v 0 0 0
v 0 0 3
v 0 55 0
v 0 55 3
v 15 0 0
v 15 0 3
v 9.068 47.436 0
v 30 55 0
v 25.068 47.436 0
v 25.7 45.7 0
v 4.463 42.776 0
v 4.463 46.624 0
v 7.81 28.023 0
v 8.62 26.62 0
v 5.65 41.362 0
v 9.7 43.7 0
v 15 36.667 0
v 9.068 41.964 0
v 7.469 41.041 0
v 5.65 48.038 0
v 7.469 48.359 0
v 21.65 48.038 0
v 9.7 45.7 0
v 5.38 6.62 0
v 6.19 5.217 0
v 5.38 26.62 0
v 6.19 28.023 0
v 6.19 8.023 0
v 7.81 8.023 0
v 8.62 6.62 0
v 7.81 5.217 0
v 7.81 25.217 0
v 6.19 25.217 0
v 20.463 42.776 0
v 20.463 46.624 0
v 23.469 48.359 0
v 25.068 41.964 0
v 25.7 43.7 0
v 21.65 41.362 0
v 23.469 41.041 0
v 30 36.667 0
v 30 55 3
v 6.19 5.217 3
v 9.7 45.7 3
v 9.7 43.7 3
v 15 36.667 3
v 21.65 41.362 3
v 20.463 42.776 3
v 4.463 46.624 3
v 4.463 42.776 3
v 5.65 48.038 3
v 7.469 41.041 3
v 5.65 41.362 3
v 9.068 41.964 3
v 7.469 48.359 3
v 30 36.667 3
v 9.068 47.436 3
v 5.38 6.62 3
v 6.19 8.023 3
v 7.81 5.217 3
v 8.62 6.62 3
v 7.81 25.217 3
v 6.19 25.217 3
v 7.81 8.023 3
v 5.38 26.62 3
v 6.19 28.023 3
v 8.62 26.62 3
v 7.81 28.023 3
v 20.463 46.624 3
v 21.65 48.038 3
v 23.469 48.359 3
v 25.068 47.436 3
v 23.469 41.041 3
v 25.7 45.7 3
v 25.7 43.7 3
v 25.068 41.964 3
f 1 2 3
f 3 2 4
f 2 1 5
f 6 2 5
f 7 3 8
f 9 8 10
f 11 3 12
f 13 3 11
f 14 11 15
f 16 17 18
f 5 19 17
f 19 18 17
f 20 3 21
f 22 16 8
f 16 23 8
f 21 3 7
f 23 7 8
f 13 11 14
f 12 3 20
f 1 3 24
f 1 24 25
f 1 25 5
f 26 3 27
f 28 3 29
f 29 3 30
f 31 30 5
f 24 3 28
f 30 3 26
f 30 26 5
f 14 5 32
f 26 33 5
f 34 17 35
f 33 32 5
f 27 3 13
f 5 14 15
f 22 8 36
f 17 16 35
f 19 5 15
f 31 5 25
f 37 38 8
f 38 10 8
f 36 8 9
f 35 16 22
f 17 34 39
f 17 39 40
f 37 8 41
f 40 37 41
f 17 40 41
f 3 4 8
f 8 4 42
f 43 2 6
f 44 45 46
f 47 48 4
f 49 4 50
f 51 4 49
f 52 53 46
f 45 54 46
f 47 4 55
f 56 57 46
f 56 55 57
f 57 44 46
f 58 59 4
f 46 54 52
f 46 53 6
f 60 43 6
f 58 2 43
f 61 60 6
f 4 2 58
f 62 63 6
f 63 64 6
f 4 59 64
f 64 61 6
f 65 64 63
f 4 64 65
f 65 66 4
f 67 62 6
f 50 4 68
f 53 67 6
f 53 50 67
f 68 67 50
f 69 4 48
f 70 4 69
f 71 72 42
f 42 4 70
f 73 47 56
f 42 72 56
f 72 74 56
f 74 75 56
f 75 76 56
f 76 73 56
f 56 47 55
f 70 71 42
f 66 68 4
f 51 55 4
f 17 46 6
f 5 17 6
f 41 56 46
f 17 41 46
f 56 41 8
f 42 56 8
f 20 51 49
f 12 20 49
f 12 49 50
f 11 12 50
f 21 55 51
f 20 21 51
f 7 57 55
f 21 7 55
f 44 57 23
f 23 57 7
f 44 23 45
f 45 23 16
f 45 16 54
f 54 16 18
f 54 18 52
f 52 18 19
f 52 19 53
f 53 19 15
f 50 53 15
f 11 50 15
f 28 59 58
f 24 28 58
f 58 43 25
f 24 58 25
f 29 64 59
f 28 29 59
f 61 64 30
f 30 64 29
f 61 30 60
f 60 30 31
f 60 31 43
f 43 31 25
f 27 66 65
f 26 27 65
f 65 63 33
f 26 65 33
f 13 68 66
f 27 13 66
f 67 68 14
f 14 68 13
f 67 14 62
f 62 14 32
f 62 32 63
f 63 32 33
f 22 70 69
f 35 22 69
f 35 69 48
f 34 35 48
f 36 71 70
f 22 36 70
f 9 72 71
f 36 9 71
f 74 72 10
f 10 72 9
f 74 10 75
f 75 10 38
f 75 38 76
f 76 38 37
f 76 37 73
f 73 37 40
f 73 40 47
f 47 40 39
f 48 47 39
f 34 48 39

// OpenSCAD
l1=30;
l2=55;
h=3;
r5=2.5*1.08;
r3=1.5*1.08;
difference(){
cube([l1,l2,h]);
translate([l1/2,-l2/3,0]){cube([l1,l2,h]);}
hull(){for(i=[0:1]){translate([l1-7,38+(5+r5)-(2*(1-i)),0]){cylinder(2*h,r5,r5,true);}}}
hull(){for(i=[0:1]){translate([l1-23,38+(5+r5)-(2*(1-i)),0]){cylinder(2*h,r5,r5,true);}}}
translate([l1-23,(5+r3),0]){cylinder(2*h,r3,r3,true);}
translate([l1-23,20+(5+r3),0]){cylinder(2*h,r3,r3,true);}
}

//1.8
